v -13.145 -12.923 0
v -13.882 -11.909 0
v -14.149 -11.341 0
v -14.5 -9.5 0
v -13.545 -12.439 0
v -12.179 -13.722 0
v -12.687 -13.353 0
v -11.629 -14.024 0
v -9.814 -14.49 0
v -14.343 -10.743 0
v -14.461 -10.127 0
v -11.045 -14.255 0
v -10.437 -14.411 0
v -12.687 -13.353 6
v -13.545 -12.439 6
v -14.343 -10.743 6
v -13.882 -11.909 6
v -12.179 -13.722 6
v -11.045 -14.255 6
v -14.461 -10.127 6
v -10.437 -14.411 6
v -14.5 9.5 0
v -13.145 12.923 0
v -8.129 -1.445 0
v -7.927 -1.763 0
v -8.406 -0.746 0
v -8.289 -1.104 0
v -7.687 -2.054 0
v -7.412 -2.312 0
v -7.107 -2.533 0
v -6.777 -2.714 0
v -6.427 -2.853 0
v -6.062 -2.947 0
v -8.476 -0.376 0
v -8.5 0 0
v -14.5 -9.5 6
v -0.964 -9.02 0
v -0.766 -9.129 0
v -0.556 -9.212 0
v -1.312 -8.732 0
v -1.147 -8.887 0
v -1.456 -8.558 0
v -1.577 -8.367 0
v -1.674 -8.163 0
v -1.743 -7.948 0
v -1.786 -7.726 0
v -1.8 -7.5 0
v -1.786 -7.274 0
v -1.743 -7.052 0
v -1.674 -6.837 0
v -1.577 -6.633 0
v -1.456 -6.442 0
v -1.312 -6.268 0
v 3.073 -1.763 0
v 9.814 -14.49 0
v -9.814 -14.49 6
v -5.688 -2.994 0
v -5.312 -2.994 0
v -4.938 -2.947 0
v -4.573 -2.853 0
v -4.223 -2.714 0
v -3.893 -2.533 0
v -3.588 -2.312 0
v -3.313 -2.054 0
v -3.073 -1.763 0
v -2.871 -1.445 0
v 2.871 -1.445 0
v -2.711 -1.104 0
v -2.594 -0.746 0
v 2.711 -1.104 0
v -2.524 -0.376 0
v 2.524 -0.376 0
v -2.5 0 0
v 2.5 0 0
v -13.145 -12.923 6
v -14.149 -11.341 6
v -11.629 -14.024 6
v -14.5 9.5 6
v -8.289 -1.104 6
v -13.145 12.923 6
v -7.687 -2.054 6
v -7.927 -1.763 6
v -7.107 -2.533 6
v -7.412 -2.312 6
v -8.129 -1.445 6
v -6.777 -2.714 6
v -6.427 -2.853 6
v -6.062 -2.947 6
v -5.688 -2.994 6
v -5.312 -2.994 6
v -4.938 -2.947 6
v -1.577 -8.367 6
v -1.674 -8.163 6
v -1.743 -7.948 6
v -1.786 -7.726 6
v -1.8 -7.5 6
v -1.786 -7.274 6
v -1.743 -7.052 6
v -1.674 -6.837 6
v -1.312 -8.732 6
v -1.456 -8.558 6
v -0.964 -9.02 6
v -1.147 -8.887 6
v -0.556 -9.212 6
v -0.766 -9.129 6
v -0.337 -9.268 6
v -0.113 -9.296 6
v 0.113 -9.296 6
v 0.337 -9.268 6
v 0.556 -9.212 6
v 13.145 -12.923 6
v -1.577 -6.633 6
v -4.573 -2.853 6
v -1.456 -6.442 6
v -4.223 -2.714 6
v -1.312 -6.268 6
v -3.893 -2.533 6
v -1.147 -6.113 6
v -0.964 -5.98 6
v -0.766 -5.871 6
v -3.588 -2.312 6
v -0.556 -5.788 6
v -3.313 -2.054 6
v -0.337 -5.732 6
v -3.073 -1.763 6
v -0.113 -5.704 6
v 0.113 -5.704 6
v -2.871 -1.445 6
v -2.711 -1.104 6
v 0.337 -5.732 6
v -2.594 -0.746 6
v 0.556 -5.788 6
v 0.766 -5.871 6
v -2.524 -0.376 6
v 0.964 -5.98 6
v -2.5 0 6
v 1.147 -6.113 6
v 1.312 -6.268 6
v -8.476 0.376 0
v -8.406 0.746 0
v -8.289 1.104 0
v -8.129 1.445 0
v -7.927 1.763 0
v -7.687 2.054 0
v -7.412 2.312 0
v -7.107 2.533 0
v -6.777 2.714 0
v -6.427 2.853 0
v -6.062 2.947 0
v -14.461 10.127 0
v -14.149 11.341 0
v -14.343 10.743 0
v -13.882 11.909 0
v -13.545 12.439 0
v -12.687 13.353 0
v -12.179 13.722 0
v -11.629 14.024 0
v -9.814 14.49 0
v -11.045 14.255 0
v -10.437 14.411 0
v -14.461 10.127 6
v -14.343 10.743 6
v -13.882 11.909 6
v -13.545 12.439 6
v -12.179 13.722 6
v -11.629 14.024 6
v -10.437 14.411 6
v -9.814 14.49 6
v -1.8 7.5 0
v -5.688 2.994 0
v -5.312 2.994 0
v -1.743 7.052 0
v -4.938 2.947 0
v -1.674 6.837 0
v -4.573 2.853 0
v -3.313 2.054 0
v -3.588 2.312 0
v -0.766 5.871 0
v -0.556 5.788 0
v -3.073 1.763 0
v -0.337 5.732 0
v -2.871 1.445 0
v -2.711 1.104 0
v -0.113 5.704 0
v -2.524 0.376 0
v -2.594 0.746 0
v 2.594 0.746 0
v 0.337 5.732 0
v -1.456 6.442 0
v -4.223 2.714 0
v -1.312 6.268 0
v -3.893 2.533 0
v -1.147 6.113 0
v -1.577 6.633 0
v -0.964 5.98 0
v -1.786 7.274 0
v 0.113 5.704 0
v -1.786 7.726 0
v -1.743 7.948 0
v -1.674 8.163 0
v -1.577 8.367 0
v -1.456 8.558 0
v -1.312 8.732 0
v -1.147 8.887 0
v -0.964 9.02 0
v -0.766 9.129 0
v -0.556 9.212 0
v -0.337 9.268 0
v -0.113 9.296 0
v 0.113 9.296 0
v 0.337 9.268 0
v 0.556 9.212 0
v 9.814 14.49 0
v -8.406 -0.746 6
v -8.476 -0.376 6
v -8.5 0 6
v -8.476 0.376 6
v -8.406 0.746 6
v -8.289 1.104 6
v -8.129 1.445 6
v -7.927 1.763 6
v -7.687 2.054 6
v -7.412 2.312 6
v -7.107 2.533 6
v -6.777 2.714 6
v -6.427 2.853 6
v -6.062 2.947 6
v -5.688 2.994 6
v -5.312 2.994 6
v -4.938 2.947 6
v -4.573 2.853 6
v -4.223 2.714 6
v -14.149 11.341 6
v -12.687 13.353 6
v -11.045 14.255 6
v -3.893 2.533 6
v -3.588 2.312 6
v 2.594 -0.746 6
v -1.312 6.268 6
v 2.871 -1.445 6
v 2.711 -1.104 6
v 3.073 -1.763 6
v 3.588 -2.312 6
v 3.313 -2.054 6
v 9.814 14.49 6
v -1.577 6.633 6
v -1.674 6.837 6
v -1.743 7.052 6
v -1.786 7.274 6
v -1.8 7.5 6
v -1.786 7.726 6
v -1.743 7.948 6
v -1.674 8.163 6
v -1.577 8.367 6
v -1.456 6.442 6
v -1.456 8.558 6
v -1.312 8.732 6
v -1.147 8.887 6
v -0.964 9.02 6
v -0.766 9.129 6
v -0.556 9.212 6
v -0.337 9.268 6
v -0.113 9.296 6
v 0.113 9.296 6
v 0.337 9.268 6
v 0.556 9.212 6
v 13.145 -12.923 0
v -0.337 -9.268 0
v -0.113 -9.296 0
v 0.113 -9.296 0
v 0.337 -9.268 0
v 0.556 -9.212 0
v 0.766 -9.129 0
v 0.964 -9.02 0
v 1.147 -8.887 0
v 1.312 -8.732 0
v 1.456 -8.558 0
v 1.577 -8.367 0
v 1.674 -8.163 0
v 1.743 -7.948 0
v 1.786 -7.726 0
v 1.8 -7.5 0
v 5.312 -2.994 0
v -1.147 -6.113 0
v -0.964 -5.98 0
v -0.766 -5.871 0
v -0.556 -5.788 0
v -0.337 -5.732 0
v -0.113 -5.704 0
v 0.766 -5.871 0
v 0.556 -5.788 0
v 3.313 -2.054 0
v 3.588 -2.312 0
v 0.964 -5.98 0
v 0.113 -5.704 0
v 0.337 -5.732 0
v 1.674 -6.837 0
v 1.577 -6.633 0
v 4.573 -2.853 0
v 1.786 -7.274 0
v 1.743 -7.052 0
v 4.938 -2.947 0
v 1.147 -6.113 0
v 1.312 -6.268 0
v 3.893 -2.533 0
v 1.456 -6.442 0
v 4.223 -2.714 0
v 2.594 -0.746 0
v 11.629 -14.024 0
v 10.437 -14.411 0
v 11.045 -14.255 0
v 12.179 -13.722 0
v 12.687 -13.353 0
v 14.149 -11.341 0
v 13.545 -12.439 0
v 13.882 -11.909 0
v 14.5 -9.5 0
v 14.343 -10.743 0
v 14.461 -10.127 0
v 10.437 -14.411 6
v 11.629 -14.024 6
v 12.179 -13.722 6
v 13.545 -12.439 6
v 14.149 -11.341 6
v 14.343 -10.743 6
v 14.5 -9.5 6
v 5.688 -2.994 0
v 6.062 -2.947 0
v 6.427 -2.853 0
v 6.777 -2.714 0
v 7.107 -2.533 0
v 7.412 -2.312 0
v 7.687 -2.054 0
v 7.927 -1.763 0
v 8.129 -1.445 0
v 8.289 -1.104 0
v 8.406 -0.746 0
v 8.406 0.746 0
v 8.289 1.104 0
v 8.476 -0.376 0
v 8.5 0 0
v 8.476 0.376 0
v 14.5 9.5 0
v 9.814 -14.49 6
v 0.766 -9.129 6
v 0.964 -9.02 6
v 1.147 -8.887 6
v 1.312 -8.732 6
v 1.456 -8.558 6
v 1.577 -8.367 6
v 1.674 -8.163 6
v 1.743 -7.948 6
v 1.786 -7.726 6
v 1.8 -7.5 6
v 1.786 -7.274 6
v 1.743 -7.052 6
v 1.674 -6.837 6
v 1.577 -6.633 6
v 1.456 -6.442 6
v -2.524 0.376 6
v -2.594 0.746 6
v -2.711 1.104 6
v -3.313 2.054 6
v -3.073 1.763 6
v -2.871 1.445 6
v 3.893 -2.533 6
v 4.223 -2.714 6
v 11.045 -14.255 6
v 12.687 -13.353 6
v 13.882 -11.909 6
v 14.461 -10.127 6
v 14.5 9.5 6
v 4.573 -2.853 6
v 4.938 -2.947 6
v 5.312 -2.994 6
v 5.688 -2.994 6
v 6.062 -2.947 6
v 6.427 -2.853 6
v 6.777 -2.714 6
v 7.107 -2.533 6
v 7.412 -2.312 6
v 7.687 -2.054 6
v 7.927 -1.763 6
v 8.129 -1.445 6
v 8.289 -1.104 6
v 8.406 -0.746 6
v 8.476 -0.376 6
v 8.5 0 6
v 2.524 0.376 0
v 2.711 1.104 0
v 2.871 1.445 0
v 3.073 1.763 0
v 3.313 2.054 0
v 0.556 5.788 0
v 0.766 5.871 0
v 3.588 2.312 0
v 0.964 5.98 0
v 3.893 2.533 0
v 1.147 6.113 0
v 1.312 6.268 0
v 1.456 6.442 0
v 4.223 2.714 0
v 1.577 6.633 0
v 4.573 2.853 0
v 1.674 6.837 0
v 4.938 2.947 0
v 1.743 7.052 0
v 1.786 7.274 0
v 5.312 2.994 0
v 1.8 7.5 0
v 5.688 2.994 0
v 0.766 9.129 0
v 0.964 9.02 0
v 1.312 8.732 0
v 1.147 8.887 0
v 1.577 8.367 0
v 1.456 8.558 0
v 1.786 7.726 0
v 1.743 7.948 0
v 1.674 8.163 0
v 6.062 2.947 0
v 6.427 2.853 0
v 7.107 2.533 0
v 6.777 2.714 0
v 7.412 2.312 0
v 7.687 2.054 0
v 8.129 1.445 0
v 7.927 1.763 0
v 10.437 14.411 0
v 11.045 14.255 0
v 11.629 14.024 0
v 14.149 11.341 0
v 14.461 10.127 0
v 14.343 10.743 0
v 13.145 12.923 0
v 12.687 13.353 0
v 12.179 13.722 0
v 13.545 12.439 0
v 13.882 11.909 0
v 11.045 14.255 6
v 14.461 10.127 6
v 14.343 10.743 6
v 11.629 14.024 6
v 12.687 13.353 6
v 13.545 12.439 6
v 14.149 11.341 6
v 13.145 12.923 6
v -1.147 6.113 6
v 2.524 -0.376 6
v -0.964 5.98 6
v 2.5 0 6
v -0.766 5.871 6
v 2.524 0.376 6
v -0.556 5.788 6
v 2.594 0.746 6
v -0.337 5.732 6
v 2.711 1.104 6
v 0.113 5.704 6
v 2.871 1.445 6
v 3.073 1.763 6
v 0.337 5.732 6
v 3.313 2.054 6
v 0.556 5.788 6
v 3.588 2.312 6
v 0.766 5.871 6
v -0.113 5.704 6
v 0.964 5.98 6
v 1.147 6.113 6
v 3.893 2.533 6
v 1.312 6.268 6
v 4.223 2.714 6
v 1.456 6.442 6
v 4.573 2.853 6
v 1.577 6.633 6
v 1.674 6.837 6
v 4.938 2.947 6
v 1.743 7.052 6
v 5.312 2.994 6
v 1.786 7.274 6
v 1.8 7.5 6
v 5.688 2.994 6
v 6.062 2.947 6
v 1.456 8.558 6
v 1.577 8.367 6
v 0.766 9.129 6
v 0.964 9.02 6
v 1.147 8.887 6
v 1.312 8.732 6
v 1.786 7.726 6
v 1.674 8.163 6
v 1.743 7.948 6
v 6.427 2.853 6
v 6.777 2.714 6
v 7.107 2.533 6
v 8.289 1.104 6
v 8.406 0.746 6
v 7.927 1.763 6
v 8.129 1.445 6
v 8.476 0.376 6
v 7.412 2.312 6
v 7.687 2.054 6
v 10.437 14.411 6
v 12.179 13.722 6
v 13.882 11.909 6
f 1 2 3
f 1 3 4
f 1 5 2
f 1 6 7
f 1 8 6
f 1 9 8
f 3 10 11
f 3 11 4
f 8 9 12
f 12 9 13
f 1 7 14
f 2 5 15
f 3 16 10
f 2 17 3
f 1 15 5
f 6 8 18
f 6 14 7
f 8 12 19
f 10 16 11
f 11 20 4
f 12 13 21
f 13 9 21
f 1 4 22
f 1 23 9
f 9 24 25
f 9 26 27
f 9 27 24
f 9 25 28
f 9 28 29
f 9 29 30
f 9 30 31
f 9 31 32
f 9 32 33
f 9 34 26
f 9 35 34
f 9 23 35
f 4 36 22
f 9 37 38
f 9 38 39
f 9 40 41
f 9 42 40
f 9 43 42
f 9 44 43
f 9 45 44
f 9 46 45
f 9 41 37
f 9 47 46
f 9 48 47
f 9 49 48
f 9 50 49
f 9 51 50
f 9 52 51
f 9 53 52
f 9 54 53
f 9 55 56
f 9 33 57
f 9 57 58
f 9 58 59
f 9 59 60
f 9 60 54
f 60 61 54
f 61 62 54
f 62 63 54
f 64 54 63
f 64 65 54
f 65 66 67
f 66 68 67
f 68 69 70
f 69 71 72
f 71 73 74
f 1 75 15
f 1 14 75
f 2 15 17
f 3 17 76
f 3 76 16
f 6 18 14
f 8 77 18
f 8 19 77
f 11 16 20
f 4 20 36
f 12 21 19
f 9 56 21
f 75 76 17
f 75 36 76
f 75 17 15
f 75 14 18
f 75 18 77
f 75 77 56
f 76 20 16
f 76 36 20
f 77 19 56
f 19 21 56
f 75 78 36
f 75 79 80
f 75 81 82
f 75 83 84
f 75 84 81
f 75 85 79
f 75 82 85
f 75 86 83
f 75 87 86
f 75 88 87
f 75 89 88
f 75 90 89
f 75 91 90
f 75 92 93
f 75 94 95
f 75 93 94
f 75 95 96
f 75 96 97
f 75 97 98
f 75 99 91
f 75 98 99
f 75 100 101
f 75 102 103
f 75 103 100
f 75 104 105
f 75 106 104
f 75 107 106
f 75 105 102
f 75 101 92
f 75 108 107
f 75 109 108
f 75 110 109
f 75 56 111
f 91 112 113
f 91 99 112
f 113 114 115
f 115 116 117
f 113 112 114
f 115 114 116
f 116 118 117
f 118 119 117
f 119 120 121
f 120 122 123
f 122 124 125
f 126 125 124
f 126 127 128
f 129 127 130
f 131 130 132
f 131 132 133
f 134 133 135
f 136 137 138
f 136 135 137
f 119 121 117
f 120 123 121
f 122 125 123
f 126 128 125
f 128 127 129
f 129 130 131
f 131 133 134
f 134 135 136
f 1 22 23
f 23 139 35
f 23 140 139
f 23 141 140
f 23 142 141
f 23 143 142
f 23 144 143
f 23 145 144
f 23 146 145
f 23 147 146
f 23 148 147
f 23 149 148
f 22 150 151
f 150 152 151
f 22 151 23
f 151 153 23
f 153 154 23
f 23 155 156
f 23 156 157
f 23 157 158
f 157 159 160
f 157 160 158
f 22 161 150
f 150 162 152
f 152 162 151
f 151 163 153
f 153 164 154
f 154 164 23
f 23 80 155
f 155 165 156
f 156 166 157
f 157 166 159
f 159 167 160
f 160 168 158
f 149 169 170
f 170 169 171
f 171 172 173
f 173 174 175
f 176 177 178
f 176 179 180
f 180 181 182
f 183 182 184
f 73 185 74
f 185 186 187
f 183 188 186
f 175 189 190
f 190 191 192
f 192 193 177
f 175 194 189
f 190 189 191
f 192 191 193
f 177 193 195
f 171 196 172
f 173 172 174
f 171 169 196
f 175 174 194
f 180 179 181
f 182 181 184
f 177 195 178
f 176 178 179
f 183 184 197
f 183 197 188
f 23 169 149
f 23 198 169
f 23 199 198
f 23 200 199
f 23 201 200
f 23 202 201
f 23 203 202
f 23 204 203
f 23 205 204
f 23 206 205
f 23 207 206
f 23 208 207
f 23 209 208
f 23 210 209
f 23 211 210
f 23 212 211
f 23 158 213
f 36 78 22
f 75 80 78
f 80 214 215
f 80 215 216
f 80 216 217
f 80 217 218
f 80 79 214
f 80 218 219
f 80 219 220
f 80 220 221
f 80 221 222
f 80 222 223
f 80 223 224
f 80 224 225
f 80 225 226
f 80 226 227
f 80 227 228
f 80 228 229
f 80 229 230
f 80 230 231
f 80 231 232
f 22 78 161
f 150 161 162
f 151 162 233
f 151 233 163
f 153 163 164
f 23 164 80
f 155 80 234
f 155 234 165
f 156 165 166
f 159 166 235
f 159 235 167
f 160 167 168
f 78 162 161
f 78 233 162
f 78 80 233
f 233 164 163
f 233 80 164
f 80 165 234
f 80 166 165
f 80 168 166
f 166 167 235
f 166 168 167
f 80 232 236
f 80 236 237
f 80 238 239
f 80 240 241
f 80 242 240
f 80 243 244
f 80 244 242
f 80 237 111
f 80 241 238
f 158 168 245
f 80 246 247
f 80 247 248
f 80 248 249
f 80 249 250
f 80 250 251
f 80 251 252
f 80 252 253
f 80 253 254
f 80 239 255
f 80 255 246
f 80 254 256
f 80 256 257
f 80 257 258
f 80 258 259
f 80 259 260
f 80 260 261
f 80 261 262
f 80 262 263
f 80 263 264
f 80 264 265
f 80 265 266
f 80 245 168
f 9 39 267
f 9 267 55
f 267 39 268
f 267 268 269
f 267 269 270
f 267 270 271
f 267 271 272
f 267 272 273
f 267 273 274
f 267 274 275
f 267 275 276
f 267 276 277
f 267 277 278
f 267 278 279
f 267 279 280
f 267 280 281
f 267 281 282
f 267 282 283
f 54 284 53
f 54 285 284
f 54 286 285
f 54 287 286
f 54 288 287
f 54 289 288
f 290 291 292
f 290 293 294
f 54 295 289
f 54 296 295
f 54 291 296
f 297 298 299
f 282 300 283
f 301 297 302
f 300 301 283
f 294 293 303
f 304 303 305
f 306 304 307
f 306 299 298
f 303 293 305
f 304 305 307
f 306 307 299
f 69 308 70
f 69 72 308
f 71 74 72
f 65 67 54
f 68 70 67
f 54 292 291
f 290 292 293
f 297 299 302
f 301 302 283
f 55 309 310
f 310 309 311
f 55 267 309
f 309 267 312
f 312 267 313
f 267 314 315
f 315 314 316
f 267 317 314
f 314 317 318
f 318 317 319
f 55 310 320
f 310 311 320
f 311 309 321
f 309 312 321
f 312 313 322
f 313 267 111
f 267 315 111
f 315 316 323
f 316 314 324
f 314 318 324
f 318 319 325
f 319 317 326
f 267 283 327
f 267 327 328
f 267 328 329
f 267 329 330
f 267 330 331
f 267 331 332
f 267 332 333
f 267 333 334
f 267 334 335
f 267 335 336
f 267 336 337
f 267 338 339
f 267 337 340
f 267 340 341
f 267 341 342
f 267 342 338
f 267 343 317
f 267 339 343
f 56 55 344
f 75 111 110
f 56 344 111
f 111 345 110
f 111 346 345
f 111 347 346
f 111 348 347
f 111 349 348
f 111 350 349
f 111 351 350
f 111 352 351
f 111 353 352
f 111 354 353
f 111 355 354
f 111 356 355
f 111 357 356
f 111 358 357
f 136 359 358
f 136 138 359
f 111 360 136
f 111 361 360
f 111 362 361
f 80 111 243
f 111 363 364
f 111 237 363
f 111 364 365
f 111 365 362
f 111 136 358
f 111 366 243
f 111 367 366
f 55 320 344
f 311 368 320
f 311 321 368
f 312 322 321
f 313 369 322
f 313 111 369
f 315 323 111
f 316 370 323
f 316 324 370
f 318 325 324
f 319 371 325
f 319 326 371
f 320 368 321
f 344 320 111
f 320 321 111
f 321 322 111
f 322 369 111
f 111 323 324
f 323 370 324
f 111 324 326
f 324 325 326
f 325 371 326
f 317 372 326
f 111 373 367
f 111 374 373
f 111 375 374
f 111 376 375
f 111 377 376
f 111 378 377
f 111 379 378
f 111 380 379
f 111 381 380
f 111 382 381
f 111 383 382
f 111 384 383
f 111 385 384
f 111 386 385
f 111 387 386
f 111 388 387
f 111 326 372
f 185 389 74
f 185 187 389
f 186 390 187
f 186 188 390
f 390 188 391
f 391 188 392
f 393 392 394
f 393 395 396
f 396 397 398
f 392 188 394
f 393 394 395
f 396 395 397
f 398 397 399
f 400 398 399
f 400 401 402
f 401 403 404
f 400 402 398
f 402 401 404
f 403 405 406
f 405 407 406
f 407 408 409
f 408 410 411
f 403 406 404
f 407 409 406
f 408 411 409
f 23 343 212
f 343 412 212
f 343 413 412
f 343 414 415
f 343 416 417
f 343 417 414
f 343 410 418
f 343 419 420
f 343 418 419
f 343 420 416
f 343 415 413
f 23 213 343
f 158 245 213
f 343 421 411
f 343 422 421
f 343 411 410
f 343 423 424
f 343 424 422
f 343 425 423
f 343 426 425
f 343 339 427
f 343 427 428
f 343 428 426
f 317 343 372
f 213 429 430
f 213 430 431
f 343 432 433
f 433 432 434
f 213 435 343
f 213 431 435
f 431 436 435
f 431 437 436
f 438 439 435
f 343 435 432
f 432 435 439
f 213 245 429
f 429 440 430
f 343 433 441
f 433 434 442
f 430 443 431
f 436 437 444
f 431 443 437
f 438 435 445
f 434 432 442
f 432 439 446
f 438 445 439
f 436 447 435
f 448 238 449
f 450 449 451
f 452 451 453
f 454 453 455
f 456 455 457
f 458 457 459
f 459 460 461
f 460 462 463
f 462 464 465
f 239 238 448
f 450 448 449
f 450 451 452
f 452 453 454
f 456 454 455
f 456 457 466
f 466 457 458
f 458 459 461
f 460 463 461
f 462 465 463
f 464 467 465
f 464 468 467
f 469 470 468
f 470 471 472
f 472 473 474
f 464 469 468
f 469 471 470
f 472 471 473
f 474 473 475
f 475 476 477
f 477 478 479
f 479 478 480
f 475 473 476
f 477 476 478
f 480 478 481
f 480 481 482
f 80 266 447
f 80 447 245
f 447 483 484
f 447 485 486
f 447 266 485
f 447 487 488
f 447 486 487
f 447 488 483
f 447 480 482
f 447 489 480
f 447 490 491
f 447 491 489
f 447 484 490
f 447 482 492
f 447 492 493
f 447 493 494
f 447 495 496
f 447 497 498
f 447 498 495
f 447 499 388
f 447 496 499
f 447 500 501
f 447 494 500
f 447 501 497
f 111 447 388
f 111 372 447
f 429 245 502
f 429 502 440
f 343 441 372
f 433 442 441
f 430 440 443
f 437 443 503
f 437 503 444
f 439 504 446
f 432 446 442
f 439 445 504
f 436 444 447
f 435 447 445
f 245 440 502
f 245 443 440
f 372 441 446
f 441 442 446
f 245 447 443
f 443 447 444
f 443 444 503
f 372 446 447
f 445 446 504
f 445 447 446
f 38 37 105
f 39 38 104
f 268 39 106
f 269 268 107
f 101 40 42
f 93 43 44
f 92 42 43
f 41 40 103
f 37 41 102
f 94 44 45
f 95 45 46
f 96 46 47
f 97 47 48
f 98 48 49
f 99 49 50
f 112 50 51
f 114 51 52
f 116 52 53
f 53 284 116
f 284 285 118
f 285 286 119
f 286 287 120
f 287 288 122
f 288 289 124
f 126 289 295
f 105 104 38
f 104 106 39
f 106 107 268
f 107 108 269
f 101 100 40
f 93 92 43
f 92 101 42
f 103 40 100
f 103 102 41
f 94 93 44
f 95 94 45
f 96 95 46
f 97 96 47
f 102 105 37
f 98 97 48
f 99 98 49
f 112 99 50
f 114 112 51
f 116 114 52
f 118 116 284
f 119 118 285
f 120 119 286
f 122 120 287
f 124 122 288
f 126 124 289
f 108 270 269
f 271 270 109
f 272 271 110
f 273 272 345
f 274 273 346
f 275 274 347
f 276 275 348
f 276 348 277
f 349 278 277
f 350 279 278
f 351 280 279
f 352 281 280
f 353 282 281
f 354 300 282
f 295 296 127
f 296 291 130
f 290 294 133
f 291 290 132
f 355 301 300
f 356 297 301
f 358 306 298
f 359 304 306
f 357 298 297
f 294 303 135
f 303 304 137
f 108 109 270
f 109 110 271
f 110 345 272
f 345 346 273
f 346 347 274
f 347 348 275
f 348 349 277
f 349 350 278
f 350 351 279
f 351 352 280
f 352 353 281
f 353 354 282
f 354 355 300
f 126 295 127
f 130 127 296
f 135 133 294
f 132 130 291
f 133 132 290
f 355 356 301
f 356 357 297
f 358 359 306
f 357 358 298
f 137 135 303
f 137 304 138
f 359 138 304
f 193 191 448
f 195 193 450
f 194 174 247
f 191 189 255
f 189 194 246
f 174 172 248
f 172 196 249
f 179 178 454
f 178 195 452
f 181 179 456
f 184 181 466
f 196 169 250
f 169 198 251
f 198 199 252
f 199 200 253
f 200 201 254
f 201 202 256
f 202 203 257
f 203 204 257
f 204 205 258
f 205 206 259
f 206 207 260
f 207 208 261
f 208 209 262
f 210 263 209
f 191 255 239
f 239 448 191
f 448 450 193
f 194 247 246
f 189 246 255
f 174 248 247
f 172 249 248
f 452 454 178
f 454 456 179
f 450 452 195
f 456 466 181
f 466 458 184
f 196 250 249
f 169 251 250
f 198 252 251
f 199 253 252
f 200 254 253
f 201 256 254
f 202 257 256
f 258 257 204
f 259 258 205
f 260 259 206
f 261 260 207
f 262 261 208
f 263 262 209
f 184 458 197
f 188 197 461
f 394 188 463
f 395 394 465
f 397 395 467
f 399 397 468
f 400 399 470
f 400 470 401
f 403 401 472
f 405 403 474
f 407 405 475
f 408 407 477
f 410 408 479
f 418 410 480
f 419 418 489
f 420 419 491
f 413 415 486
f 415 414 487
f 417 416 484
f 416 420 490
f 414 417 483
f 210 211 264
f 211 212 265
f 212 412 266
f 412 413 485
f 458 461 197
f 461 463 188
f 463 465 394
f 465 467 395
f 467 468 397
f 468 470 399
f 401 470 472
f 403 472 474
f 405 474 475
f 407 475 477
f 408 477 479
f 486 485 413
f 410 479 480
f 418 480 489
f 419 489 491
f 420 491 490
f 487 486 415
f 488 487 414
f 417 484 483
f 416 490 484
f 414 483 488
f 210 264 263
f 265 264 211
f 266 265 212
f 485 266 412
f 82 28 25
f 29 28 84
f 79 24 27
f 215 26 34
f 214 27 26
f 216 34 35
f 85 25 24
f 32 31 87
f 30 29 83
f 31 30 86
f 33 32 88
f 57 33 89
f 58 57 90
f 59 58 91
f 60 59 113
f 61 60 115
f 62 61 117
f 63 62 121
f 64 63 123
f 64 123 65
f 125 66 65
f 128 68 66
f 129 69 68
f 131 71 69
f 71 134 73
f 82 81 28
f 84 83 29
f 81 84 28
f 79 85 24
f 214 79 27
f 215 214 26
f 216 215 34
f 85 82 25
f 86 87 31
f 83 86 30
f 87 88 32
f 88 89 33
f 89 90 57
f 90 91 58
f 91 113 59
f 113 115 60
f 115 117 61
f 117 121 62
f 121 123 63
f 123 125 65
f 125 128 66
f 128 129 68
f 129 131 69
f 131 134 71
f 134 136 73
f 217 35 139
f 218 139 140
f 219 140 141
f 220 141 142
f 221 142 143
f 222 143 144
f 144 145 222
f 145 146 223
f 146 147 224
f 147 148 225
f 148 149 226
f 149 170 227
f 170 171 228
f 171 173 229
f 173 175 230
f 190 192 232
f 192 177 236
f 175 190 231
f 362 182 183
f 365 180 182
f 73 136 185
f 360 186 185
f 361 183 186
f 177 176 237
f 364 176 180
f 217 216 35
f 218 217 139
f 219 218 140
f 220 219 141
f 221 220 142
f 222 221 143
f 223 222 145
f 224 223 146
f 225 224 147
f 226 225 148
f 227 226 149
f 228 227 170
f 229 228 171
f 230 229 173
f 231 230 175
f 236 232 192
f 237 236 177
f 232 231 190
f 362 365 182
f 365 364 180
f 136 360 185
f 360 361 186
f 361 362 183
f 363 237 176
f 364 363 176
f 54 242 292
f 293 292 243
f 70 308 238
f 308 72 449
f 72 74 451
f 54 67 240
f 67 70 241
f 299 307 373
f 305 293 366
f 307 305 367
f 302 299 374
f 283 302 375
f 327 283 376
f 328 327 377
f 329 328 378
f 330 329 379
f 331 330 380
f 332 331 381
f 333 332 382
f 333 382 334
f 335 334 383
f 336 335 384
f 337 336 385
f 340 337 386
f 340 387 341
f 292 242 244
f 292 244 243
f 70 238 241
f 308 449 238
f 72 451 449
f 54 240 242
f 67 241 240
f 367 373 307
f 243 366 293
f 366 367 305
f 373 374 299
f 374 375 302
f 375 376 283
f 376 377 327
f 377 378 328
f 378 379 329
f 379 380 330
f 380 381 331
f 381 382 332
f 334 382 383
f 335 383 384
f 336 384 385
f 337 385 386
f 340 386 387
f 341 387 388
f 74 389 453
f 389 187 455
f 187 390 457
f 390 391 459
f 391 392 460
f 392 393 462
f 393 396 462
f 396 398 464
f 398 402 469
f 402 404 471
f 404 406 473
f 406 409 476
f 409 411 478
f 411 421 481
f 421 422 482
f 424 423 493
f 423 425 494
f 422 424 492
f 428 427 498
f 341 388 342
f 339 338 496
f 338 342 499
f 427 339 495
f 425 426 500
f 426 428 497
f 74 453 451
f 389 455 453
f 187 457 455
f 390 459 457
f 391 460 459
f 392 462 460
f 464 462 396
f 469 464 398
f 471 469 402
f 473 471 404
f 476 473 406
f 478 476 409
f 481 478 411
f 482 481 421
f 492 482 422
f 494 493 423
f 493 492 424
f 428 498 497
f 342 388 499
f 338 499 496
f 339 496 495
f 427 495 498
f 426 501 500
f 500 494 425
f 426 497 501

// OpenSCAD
$fn = 50;

difference() {
	union() {
		hull() {
			translate(v = [-9.5, 9.5, 0]) {
				cylinder(h = 6, r = 5);
			}
			translate(v = [9.5, 9.5, 0]) {
				cylinder(h = 6, r = 5);
			}
			translate(v = [-9.5, -9.5, 0]) {
				cylinder(h = 6, r = 5);
			}
			translate(v = [9.5, -9.5, 0]) {
				cylinder(h = 6, r = 5);
			}
		}
	}
	union() {
		translate(v = [0.0, -7.5, 0]) {
			cylinder(h = 6, r = 1.8);
		}
		translate(v = [0.0, 7.5, 0]) {
			cylinder(h = 6, r = 1.8);
		}
		translate(v = [-5.5, 0, 0.0]) {
			cylinder(h = 6, r = 3.0);
		}
		translate(v = [5.5, 0, 0.0]) {
			cylinder(h = 6, r = 3.0);
		}
	}
}
